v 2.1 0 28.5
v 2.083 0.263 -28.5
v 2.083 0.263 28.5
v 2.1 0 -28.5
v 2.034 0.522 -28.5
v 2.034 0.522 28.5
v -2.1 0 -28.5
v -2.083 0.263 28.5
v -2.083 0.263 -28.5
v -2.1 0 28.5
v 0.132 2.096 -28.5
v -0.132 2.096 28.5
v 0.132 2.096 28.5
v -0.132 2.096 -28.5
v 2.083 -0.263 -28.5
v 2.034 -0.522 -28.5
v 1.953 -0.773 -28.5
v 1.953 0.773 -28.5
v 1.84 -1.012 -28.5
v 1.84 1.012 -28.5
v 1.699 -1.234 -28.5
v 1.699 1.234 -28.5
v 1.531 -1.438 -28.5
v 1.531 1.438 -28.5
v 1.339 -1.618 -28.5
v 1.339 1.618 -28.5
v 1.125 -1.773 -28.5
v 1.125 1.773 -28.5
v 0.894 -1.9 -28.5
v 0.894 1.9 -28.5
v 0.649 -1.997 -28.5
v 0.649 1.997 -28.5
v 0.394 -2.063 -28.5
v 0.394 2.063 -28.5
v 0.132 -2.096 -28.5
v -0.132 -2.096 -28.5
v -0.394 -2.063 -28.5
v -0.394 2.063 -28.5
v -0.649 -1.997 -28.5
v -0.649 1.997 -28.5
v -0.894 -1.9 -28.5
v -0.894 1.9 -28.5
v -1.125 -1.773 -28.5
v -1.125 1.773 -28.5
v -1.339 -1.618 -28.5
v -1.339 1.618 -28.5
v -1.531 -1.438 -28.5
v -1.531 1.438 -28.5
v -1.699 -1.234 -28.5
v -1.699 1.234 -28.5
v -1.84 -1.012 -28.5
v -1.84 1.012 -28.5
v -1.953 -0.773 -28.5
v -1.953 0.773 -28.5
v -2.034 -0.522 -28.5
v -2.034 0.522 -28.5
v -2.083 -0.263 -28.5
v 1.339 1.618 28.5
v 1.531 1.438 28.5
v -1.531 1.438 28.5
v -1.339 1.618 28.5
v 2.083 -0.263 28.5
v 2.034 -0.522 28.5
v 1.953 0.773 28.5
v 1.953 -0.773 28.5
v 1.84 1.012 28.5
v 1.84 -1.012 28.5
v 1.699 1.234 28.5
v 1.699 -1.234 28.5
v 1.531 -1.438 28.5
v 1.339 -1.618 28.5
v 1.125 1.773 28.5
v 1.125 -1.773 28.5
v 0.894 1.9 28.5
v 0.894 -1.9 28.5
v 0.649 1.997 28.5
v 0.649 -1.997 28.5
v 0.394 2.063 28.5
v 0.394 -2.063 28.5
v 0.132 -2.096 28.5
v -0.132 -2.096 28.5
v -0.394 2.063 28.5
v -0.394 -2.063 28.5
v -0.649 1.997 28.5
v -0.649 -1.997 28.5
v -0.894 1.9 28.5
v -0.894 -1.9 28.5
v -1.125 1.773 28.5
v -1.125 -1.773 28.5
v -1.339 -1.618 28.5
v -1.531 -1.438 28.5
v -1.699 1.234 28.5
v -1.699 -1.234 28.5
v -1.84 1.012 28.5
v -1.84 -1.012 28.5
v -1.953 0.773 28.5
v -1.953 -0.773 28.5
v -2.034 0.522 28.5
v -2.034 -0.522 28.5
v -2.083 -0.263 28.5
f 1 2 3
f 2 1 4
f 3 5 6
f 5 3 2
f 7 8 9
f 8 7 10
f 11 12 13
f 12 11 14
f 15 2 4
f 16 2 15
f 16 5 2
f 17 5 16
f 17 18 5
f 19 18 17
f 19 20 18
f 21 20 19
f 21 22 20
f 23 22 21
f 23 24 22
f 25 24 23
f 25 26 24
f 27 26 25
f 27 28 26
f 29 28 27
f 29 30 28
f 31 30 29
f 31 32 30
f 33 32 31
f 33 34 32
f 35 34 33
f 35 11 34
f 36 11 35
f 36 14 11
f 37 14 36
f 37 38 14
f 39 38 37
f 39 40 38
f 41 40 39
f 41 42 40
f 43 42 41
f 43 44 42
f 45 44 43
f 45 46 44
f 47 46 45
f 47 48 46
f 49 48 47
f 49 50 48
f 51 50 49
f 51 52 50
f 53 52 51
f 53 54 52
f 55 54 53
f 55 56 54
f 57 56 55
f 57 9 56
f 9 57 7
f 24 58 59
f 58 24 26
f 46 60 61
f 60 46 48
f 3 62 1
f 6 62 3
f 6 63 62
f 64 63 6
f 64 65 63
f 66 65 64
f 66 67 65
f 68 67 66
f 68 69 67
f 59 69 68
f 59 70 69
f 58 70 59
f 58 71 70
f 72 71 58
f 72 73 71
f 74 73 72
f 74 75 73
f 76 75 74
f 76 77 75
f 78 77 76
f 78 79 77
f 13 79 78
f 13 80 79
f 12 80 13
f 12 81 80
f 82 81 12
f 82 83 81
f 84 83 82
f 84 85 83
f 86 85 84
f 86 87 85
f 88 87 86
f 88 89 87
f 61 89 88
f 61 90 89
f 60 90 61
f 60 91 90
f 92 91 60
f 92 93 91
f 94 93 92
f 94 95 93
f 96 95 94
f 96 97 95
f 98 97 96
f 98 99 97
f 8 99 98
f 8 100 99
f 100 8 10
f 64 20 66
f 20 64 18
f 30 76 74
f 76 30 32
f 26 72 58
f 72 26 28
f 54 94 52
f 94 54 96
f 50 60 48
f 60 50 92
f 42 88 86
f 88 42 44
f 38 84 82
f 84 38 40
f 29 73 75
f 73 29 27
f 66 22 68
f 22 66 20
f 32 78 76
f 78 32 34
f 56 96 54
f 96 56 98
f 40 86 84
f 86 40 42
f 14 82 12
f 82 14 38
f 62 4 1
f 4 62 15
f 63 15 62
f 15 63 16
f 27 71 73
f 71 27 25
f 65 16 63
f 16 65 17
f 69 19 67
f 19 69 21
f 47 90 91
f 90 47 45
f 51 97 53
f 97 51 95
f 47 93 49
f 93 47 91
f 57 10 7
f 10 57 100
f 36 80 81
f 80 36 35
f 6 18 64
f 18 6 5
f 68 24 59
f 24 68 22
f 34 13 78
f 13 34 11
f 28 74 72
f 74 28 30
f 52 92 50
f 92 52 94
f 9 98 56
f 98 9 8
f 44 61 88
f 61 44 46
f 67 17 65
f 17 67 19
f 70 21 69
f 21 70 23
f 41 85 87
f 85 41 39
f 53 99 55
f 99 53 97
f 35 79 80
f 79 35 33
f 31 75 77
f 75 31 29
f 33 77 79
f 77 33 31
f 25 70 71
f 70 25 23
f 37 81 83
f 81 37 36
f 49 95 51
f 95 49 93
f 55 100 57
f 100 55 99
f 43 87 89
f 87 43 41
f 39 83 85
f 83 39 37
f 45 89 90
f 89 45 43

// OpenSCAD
$fn = 50;


difference() {
	union() {
		translate(v = [0, 0, -28.5000000000]) {
			cylinder(h = 57, r = 2.1000000000);
		}
	}
	union() {
		translate(v = [0, 0, -100.0000000000]) {
			cylinder(h = 200, r = 0);
		}
	}
}
